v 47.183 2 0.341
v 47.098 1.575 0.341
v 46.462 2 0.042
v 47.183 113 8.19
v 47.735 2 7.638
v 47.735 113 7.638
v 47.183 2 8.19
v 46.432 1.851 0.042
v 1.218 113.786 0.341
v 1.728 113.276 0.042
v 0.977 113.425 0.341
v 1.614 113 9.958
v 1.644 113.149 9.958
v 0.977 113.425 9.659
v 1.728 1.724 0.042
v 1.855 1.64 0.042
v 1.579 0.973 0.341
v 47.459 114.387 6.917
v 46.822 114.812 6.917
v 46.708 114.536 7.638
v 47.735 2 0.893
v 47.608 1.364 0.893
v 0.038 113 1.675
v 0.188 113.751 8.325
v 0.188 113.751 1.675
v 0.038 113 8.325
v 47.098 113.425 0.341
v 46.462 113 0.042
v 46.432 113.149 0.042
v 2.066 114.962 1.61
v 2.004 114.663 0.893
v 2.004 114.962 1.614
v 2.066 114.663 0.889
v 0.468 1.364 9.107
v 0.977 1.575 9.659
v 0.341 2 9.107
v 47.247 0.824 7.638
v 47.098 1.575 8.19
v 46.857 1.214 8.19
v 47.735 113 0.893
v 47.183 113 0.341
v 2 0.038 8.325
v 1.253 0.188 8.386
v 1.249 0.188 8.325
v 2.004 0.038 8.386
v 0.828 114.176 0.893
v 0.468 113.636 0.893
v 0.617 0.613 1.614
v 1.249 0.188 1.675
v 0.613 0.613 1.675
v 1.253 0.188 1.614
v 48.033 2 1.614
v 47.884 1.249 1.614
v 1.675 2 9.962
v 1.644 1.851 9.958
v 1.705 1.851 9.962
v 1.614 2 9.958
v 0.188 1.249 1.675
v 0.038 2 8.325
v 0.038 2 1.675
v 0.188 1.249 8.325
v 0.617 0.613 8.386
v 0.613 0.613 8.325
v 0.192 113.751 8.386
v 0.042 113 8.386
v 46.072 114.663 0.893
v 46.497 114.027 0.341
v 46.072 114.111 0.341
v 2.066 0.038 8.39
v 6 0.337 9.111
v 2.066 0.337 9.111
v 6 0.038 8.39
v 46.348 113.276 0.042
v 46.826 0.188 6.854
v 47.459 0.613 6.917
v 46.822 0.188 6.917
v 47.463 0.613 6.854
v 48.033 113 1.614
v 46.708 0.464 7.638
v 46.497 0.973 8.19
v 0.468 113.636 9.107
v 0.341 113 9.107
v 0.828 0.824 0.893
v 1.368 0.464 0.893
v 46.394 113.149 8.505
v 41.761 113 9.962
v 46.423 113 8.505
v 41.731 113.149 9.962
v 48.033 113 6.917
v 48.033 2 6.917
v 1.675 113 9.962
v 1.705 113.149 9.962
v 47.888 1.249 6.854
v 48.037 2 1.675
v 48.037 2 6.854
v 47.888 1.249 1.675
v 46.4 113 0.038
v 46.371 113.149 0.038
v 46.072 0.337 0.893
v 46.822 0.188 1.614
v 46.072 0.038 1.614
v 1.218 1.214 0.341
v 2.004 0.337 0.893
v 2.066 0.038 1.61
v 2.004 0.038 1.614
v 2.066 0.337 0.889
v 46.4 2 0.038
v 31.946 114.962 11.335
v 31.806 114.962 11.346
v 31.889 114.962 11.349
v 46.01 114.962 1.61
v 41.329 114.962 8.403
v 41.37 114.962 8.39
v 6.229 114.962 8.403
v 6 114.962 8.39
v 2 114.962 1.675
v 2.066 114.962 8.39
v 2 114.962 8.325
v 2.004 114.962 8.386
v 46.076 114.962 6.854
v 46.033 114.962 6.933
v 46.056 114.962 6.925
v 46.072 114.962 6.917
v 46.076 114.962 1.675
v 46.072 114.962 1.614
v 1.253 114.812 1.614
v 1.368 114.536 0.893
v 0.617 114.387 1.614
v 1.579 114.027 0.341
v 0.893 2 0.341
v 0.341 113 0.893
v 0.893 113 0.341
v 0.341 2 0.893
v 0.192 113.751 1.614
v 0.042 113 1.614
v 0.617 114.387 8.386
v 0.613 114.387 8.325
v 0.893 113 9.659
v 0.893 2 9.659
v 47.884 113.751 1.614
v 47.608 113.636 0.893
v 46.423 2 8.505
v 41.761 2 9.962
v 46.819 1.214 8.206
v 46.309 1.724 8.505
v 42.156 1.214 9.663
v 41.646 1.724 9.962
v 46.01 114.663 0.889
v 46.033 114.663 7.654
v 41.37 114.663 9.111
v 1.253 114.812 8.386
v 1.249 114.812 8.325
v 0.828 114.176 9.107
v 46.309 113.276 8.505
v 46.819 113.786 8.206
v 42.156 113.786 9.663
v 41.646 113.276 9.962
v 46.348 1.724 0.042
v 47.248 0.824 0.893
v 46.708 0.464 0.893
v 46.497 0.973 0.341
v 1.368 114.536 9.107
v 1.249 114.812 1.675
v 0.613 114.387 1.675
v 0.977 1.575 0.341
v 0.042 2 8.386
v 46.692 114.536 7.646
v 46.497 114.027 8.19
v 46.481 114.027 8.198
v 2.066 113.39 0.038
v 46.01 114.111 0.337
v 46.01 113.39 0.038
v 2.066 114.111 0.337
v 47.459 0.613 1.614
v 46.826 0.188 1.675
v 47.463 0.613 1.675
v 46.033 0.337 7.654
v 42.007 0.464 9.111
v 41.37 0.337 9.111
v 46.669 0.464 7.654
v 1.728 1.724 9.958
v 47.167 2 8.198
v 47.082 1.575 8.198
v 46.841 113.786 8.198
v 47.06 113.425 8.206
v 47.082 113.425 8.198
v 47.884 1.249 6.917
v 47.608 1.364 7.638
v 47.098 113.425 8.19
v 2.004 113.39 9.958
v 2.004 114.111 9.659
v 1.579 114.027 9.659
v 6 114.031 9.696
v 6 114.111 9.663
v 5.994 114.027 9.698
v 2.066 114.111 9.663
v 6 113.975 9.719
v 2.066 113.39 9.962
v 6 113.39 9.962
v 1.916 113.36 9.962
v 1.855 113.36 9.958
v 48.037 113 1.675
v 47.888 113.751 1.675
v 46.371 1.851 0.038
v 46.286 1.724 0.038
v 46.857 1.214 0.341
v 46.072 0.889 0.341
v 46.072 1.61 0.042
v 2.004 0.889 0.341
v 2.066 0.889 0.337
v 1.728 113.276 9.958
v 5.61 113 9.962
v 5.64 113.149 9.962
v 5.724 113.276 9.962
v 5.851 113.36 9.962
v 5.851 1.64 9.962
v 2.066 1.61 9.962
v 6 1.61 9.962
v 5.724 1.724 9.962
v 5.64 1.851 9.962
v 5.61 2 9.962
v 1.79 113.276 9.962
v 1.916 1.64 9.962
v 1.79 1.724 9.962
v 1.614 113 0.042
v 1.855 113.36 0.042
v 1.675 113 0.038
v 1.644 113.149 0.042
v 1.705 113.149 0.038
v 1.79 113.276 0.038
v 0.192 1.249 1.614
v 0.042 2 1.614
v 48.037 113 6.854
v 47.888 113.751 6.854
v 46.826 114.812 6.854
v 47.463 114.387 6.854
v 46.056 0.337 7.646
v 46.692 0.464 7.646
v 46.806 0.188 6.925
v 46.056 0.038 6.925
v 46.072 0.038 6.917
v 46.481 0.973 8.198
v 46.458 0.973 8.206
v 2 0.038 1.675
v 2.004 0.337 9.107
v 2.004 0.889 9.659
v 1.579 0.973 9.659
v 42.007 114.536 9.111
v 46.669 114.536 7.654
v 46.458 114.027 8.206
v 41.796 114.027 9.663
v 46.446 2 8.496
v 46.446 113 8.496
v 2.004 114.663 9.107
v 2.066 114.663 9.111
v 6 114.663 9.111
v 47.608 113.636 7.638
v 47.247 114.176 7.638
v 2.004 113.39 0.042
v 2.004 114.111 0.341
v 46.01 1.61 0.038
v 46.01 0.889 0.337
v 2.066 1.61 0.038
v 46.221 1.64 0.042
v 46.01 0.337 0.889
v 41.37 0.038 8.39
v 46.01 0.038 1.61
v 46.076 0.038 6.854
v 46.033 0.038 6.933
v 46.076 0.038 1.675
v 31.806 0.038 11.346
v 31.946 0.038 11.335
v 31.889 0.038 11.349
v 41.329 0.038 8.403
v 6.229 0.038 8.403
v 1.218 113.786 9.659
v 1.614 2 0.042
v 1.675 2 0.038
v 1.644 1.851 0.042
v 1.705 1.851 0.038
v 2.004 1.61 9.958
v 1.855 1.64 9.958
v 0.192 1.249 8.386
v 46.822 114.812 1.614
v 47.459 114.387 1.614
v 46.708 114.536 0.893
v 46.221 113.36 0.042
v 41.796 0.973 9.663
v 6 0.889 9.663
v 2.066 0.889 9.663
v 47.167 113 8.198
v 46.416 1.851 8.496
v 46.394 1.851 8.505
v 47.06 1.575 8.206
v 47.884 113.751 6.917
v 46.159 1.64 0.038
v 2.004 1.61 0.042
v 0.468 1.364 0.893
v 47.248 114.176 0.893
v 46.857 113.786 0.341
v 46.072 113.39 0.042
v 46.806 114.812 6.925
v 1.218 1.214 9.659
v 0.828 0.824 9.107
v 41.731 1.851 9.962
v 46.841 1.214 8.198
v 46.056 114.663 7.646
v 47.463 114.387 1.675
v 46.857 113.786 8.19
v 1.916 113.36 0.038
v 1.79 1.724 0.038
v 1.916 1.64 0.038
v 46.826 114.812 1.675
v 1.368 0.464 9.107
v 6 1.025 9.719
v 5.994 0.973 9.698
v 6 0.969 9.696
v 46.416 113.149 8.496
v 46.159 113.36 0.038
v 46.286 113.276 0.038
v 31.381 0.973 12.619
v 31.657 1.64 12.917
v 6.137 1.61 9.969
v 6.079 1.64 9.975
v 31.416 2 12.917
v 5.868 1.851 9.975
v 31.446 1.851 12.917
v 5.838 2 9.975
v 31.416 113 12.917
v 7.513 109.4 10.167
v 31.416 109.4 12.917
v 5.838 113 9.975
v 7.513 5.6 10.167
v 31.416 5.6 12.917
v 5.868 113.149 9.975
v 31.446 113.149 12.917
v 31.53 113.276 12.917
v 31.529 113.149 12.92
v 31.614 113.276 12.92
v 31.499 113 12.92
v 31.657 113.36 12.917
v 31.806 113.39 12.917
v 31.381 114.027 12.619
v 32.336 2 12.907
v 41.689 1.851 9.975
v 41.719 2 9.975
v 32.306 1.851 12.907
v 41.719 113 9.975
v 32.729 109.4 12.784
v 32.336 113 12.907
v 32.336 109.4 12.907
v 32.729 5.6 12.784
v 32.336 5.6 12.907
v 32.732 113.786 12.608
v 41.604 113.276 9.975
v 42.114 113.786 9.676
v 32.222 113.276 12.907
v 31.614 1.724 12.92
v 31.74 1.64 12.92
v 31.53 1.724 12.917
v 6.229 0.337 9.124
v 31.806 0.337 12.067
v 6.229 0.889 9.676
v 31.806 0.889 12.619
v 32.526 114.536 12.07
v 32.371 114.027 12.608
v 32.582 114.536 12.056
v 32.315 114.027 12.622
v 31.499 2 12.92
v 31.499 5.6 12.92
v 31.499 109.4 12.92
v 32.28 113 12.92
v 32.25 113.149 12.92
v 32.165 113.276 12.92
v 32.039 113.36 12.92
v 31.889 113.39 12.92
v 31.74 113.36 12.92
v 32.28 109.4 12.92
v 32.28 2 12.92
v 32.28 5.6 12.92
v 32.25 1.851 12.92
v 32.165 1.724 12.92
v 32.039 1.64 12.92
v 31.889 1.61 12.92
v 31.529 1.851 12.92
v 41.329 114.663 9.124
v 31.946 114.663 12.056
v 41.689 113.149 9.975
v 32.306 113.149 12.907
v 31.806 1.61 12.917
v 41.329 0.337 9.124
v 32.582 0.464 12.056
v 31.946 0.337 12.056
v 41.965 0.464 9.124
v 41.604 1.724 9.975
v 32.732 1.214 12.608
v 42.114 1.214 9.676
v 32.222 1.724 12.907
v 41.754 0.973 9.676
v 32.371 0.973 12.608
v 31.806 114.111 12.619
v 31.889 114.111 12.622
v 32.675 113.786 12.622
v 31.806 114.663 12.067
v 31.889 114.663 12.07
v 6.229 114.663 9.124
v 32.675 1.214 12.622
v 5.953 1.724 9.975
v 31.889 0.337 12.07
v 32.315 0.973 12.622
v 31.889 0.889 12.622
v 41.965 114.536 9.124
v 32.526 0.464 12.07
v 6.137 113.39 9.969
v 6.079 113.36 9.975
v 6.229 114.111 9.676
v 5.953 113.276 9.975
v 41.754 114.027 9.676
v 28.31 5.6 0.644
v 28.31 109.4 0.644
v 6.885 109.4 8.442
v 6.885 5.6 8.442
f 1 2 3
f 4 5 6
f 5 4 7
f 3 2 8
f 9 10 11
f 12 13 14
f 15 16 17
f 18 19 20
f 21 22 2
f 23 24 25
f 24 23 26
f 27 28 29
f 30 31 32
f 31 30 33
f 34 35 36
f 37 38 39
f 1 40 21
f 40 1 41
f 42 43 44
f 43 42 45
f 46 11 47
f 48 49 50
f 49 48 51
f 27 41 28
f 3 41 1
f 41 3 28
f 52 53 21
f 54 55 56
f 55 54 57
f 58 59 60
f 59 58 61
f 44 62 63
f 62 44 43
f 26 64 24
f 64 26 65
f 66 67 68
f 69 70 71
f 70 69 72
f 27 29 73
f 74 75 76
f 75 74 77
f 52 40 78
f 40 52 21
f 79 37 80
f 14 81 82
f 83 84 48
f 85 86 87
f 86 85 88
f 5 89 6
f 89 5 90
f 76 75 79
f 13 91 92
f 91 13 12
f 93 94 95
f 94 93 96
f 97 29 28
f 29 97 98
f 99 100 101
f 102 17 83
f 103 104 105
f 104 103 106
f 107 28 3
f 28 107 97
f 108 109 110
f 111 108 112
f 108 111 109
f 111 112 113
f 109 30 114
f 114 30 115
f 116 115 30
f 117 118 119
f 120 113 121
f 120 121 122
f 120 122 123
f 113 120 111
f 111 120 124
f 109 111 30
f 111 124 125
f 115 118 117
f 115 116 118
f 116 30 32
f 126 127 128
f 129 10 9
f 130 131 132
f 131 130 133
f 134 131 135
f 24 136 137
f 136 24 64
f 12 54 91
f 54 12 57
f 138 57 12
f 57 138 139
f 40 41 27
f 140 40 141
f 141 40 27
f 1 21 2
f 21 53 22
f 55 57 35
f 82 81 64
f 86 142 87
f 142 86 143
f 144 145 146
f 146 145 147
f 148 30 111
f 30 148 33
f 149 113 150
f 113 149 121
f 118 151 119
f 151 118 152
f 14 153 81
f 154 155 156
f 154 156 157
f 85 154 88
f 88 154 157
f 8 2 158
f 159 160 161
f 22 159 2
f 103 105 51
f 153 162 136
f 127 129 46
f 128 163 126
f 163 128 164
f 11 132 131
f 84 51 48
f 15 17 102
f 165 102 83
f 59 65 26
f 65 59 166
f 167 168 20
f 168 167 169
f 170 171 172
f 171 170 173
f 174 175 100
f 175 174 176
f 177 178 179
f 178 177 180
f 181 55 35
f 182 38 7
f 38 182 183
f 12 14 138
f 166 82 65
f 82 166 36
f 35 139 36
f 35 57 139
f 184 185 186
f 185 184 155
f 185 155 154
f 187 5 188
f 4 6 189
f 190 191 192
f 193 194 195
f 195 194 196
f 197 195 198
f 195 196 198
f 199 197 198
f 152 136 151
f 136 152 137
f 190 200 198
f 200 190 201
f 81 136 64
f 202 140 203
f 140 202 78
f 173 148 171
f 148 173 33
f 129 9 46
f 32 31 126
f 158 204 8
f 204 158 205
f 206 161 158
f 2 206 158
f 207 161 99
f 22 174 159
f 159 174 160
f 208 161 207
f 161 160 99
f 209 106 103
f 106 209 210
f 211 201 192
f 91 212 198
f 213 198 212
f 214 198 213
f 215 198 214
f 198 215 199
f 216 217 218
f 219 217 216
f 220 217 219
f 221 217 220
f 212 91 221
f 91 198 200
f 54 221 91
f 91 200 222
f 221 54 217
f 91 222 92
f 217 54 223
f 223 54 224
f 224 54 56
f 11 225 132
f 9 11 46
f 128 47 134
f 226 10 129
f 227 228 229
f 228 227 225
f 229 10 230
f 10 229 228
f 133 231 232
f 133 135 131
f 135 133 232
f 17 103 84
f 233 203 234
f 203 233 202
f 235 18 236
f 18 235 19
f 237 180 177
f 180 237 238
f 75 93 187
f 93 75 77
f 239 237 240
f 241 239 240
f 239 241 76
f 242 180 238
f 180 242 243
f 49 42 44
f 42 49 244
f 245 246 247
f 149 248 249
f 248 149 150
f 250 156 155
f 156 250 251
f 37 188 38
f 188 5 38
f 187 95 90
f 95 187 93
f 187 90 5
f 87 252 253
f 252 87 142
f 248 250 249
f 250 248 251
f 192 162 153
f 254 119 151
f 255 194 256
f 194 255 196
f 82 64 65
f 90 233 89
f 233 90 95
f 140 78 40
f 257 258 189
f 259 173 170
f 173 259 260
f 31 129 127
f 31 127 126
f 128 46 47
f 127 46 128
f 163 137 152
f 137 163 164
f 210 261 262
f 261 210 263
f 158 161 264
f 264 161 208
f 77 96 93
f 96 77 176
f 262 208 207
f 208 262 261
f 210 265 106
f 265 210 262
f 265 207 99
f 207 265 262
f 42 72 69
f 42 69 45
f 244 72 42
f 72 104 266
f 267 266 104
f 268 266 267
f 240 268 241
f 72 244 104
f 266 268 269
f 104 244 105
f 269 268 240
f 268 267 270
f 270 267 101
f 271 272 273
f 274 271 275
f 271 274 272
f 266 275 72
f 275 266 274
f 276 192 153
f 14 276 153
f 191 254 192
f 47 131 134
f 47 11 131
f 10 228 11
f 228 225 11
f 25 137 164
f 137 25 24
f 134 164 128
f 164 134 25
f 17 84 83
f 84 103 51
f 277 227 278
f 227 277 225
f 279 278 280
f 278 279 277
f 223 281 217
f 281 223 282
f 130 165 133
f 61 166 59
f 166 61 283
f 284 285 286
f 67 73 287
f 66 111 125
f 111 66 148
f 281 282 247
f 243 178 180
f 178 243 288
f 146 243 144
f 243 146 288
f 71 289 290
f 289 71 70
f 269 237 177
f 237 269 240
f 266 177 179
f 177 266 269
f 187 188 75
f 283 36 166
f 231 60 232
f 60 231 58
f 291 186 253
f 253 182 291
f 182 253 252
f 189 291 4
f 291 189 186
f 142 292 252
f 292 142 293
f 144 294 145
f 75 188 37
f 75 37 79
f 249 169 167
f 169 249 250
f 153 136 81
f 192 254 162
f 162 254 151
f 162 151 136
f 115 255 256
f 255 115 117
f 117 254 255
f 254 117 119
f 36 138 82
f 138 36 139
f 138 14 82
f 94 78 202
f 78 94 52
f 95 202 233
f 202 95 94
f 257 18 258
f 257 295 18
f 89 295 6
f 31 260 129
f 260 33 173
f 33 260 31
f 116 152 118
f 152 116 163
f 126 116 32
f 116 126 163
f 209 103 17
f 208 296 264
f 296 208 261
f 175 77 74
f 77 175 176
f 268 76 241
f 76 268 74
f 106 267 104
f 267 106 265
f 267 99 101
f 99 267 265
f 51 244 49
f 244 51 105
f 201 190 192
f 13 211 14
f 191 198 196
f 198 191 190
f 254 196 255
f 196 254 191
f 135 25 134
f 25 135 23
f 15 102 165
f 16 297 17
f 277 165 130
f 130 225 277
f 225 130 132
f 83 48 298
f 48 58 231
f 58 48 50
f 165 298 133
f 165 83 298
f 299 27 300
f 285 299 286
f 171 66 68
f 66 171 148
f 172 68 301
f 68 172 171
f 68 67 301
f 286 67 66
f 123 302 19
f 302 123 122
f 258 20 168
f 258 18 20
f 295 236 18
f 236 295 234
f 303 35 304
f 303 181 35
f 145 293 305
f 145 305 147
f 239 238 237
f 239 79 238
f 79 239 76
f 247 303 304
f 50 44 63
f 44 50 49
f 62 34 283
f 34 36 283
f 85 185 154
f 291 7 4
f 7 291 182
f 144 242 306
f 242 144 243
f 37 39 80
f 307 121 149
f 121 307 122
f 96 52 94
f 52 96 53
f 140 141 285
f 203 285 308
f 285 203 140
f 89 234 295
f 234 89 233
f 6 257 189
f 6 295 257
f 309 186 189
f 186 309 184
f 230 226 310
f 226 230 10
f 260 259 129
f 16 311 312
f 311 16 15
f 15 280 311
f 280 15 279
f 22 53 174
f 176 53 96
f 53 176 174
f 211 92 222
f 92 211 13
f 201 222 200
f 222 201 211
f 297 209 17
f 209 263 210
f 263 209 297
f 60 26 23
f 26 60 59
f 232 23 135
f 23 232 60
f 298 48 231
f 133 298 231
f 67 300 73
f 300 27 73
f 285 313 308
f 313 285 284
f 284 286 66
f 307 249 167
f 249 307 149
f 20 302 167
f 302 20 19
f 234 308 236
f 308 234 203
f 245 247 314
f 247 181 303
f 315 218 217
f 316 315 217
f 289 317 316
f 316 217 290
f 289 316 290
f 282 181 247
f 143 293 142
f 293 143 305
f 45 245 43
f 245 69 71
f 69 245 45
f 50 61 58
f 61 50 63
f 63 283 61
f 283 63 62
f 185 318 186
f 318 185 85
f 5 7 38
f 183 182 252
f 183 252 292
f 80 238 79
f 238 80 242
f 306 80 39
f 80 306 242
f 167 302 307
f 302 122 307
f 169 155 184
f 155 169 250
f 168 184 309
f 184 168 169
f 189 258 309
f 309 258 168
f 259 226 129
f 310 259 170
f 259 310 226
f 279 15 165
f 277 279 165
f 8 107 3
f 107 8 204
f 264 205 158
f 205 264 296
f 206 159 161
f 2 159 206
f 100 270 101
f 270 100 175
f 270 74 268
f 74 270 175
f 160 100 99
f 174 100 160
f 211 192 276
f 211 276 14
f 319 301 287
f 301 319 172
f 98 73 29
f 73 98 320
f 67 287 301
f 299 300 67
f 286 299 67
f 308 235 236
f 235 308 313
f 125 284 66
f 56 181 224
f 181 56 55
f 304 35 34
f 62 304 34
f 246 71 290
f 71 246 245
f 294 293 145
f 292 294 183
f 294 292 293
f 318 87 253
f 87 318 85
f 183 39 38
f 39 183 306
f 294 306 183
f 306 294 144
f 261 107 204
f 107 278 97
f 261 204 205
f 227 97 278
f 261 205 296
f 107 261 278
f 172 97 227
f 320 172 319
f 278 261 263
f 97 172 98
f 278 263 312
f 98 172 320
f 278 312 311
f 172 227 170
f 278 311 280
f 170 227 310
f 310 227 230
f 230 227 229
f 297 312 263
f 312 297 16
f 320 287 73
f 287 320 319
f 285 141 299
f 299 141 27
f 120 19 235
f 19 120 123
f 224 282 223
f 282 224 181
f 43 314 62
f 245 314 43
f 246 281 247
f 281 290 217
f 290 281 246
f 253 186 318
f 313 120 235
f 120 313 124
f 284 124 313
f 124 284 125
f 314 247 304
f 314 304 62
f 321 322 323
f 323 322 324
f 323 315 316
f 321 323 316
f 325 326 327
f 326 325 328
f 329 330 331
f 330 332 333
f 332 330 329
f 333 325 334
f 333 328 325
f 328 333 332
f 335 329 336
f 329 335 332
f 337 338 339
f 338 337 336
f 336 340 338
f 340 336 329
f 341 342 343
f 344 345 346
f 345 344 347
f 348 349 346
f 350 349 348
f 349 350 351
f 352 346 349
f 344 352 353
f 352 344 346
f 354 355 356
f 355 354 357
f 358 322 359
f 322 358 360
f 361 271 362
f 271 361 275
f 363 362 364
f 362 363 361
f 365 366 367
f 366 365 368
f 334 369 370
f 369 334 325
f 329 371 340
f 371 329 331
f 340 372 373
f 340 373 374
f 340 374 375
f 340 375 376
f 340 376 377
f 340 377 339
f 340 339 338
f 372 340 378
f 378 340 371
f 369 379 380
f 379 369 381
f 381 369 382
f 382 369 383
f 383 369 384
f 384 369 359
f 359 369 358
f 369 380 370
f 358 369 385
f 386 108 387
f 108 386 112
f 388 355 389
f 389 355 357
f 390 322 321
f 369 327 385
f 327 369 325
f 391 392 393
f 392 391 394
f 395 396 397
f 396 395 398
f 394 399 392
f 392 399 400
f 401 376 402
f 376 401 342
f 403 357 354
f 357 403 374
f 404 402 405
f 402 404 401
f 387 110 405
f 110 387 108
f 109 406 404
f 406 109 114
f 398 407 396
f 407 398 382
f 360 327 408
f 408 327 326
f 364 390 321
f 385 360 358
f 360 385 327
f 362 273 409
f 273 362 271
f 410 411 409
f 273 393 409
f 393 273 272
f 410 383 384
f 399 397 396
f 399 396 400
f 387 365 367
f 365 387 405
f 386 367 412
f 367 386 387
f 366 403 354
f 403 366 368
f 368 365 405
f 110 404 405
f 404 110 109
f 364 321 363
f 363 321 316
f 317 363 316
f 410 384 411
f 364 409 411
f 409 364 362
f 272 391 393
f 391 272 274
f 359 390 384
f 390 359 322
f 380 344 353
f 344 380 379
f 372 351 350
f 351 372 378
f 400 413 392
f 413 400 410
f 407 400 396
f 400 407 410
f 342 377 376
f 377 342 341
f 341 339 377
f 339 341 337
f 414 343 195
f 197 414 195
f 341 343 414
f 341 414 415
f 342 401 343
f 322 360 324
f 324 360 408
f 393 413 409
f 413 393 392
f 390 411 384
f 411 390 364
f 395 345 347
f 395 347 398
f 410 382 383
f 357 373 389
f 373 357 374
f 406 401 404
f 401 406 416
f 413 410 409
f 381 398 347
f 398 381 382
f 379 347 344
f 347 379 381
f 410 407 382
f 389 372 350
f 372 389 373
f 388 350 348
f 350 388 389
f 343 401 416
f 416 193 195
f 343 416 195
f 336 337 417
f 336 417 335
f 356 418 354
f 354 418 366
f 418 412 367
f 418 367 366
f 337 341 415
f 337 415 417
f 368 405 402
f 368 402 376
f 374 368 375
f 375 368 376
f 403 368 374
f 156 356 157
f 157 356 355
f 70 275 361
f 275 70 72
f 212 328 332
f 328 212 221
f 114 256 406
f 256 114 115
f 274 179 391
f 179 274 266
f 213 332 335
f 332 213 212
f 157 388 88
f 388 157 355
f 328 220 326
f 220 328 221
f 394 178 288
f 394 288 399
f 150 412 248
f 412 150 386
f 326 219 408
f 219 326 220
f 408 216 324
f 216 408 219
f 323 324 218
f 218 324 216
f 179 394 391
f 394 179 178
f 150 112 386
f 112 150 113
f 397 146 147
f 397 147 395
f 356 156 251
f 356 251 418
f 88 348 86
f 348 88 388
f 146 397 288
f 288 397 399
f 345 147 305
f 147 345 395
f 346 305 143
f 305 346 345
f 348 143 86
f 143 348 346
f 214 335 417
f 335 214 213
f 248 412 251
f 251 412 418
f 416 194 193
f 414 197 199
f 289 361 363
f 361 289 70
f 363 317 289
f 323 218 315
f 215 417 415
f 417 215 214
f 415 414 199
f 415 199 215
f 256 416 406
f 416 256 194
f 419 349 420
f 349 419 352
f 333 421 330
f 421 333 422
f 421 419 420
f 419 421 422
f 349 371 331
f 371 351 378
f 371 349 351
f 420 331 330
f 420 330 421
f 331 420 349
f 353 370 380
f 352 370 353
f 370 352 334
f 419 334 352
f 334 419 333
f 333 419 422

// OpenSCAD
// ============================================================
//  MiniMoc — SOCLE INCLINÉ (profil en CALE)
//  ------------------------------------------------------------
//  Le boîtier se pose DEBOUT dans une gorge inclinée, penché de
//  `angle_vert` degrés depuis la verticale.
//  Jacks 1-6 en haut, entrées A/B à gauche.
//
//  PROFIL EN CALE : fin à l'avant, épais à l'arrière.
//  Gorge asymétrique :
//    - lèvre AVANT basse   -> passe SOUS les têtes de vis du PCB
//    - dossier ARRIÈRE haut -> le boîtier s'y appuie en penchant
//
//  La géométrie est CALCULÉE pour qu'il reste toujours de la
//  matière devant, derrière et sous la gorge (pas de zone
//  fragile, pas de pièce coupée en deux).
// ============================================================


// ---------- PARAMÈTRES ---------------------------------------

angle_vert   = 20;    // inclinaison depuis la VERTICALE (°)

// -- Boîtier --
boitier_l    = 103;   // largeur reposant dans la gorge
boitier_ep   = 22.2;  // épaisseur du boîtier

// -- Gorge --
gorge_jeu    = 0.6;   // jeu d'insertion
gorge_prof   = 9;    // profondeur d'encastrement du boîtier
gorge_h_av   = 6.0;   // hauteur de la lèvre AVANT
                      //  GARDER SOUS 4 mm (vis à 4-5 mm du bord)
gorge_marge  = 6.0;   // débord latéral de chaque côté = épaisseur des
                      //  JOUES qui bloquent le boîtier latéralement
gorge_jeu_lat= 0.8;   // jeu latéral (le boîtier doit glisser sans forcer)

// -- Épaisseurs de matière (solidité) --
ep_sous      = 4.0;   // matière SOUS le fond de la gorge
ep_avant     = 6.0;   // matière DEVANT la gorge (la lèvre)
ep_arriere   = 16.0;  // matière DERRIÈRE la gorge (lest/dossier)
                      //  AUGMENTER si le socle bascule en arrière

dossier_h    = 8;    // hauteur du dossier arrière

// -- Arrondis (confort + finition) --
arrondi_r    = 2.0;   // rayon d'arrondi des arêtes EXTÉRIEURES
arrondi_fn   = 16;    // finesse de l'arrondi (16 = bon compromis).
                      //  Monte à 24-32 pour l'export final si tu veux
                      //  plus lisse ; baisse à 8-12 si le rendu F6
                      //  est trop lent pendant que tu travailles.
                      //  (la gorge, elle, reste à angles VIFS pour
                      //   que le boîtier s'y loge bien)

$fn = 48;


// ---------- CALCULS (géométrie garantie cohérente) -----------

socle_l  = boitier_l + 2*gorge_marge;   // largeur totale
gorge_w  = boitier_ep + gorge_jeu;      // largeur de la fente
dx       = gorge_prof * tan(angle_vert);// décalage dû à l'inclinaison

// Bord AVANT de la gorge, mesuré à son point le plus avancé
// (c'est-à-dire au FOND de la gorge, car elle penche vers l'avant).
// On place ce point à ep_avant du bord avant du socle.
// => position X de l'axe de la gorge, au niveau du DESSUS :
gx       = ep_avant + gorge_w/2 + dx;

// Hauteur du sommet de la gorge (= hauteur utile du socle à cet endroit)
h_gorge  = ep_sous + gorge_prof;

// Bord ARRIÈRE de la gorge au sommet + matière derrière
prof_tot = gx + gorge_w/2 + ep_arriere;

// Hauteur de la lèvre avant (sommet)
h_levre  = ep_sous + gorge_h_av;


// ---------- CONSTRUCTION -------------------------------------

// Silhouette : cale (fin devant, épais derrière)
module silhouette_brute() {
    polygon([
        [0,                    0],           // avant-bas
        [prof_tot,             0],           // arrière-bas
        [prof_tot,             dossier_h],   // arrière-haut
        [gx + gorge_w/2,       h_gorge],     // sommet, derrière la gorge
        [gx - gorge_w/2 - dx,  h_levre],     // sommet de la lèvre avant
        [0,                    h_levre]      // avant-haut
    ]);
}

// Silhouette avec les angles ARRONDIS (offset -r puis +r)
module silhouette() {
    if (arrondi_r > 0)
        offset(r =  arrondi_r)
            offset(r = -arrondi_r)
                silhouette_brute();
    else
        silhouette_brute();
}

// Gorge : fente inclinée, borgne (s'arrête à ep_sous du fond)
module gorge() {
    translate([gx, h_gorge])
        rotate(-angle_vert)
            translate([-gorge_w/2, -gorge_prof])
                square([gorge_w, gorge_prof + 30]);
}

module profil_socle() {
    difference() {
        silhouette();
        gorge();
    }
}

// Le socle : bloc plein extrudé sur toute la largeur, dans lequel
// on creuse la gorge UNIQUEMENT sur la longueur du boîtier.
// Il reste donc une JOUE de `gorge_marge` de chaque côté, qui
// empêche le boîtier de coulisser latéralement.
module socle() {
    gorge_len = boitier_l + gorge_jeu_lat;
    gorge_y0  = (socle_l - gorge_len) / 2;

    difference() {
        // ---- BLOC PLEIN, arêtes extérieures arrondies ----
        // On arrondit les arêtes verticales (coins vus de dessus) en
        // rétrécissant puis re-gonflant le bloc avec minkowski d'un
        // cylindre : cela adoucit tous les bords verticaux.
        minkowski() {
            // bloc réduit du rayon d'arrondi dans TOUTES les directions.
            // IMPORTANT : on le décale de +arrondi_r en Y pour que le
            // regonflement par la sphère retombe SYMÉTRIQUEMENT
            // (sinon le socle se décale d'un côté).
            translate([0, arrondi_r, 0])
                rotate([90, 0, 0])
                    translate([0, 0, -(socle_l - 2*arrondi_r)])
                        linear_extrude(socle_l - 2*arrondi_r)
                            offset(delta = -arrondi_r) silhouette();
            // la "brosse" : une SPHÈRE -> arrondit TOUTES les arêtes,
            // y compris celles des faces latérales gauche et droite.
            sphere(r = arrondi_r, $fn = arrondi_fn);
        }

        // ---- LA GORGE : creusée APRÈS -> angles VIFS ----
        translate([0, gorge_y0, 0])
            rotate([90, 0, 0])
                translate([0, 0, -gorge_len])
                    linear_extrude(gorge_len)
                        gorge();
    }
}

socle();
